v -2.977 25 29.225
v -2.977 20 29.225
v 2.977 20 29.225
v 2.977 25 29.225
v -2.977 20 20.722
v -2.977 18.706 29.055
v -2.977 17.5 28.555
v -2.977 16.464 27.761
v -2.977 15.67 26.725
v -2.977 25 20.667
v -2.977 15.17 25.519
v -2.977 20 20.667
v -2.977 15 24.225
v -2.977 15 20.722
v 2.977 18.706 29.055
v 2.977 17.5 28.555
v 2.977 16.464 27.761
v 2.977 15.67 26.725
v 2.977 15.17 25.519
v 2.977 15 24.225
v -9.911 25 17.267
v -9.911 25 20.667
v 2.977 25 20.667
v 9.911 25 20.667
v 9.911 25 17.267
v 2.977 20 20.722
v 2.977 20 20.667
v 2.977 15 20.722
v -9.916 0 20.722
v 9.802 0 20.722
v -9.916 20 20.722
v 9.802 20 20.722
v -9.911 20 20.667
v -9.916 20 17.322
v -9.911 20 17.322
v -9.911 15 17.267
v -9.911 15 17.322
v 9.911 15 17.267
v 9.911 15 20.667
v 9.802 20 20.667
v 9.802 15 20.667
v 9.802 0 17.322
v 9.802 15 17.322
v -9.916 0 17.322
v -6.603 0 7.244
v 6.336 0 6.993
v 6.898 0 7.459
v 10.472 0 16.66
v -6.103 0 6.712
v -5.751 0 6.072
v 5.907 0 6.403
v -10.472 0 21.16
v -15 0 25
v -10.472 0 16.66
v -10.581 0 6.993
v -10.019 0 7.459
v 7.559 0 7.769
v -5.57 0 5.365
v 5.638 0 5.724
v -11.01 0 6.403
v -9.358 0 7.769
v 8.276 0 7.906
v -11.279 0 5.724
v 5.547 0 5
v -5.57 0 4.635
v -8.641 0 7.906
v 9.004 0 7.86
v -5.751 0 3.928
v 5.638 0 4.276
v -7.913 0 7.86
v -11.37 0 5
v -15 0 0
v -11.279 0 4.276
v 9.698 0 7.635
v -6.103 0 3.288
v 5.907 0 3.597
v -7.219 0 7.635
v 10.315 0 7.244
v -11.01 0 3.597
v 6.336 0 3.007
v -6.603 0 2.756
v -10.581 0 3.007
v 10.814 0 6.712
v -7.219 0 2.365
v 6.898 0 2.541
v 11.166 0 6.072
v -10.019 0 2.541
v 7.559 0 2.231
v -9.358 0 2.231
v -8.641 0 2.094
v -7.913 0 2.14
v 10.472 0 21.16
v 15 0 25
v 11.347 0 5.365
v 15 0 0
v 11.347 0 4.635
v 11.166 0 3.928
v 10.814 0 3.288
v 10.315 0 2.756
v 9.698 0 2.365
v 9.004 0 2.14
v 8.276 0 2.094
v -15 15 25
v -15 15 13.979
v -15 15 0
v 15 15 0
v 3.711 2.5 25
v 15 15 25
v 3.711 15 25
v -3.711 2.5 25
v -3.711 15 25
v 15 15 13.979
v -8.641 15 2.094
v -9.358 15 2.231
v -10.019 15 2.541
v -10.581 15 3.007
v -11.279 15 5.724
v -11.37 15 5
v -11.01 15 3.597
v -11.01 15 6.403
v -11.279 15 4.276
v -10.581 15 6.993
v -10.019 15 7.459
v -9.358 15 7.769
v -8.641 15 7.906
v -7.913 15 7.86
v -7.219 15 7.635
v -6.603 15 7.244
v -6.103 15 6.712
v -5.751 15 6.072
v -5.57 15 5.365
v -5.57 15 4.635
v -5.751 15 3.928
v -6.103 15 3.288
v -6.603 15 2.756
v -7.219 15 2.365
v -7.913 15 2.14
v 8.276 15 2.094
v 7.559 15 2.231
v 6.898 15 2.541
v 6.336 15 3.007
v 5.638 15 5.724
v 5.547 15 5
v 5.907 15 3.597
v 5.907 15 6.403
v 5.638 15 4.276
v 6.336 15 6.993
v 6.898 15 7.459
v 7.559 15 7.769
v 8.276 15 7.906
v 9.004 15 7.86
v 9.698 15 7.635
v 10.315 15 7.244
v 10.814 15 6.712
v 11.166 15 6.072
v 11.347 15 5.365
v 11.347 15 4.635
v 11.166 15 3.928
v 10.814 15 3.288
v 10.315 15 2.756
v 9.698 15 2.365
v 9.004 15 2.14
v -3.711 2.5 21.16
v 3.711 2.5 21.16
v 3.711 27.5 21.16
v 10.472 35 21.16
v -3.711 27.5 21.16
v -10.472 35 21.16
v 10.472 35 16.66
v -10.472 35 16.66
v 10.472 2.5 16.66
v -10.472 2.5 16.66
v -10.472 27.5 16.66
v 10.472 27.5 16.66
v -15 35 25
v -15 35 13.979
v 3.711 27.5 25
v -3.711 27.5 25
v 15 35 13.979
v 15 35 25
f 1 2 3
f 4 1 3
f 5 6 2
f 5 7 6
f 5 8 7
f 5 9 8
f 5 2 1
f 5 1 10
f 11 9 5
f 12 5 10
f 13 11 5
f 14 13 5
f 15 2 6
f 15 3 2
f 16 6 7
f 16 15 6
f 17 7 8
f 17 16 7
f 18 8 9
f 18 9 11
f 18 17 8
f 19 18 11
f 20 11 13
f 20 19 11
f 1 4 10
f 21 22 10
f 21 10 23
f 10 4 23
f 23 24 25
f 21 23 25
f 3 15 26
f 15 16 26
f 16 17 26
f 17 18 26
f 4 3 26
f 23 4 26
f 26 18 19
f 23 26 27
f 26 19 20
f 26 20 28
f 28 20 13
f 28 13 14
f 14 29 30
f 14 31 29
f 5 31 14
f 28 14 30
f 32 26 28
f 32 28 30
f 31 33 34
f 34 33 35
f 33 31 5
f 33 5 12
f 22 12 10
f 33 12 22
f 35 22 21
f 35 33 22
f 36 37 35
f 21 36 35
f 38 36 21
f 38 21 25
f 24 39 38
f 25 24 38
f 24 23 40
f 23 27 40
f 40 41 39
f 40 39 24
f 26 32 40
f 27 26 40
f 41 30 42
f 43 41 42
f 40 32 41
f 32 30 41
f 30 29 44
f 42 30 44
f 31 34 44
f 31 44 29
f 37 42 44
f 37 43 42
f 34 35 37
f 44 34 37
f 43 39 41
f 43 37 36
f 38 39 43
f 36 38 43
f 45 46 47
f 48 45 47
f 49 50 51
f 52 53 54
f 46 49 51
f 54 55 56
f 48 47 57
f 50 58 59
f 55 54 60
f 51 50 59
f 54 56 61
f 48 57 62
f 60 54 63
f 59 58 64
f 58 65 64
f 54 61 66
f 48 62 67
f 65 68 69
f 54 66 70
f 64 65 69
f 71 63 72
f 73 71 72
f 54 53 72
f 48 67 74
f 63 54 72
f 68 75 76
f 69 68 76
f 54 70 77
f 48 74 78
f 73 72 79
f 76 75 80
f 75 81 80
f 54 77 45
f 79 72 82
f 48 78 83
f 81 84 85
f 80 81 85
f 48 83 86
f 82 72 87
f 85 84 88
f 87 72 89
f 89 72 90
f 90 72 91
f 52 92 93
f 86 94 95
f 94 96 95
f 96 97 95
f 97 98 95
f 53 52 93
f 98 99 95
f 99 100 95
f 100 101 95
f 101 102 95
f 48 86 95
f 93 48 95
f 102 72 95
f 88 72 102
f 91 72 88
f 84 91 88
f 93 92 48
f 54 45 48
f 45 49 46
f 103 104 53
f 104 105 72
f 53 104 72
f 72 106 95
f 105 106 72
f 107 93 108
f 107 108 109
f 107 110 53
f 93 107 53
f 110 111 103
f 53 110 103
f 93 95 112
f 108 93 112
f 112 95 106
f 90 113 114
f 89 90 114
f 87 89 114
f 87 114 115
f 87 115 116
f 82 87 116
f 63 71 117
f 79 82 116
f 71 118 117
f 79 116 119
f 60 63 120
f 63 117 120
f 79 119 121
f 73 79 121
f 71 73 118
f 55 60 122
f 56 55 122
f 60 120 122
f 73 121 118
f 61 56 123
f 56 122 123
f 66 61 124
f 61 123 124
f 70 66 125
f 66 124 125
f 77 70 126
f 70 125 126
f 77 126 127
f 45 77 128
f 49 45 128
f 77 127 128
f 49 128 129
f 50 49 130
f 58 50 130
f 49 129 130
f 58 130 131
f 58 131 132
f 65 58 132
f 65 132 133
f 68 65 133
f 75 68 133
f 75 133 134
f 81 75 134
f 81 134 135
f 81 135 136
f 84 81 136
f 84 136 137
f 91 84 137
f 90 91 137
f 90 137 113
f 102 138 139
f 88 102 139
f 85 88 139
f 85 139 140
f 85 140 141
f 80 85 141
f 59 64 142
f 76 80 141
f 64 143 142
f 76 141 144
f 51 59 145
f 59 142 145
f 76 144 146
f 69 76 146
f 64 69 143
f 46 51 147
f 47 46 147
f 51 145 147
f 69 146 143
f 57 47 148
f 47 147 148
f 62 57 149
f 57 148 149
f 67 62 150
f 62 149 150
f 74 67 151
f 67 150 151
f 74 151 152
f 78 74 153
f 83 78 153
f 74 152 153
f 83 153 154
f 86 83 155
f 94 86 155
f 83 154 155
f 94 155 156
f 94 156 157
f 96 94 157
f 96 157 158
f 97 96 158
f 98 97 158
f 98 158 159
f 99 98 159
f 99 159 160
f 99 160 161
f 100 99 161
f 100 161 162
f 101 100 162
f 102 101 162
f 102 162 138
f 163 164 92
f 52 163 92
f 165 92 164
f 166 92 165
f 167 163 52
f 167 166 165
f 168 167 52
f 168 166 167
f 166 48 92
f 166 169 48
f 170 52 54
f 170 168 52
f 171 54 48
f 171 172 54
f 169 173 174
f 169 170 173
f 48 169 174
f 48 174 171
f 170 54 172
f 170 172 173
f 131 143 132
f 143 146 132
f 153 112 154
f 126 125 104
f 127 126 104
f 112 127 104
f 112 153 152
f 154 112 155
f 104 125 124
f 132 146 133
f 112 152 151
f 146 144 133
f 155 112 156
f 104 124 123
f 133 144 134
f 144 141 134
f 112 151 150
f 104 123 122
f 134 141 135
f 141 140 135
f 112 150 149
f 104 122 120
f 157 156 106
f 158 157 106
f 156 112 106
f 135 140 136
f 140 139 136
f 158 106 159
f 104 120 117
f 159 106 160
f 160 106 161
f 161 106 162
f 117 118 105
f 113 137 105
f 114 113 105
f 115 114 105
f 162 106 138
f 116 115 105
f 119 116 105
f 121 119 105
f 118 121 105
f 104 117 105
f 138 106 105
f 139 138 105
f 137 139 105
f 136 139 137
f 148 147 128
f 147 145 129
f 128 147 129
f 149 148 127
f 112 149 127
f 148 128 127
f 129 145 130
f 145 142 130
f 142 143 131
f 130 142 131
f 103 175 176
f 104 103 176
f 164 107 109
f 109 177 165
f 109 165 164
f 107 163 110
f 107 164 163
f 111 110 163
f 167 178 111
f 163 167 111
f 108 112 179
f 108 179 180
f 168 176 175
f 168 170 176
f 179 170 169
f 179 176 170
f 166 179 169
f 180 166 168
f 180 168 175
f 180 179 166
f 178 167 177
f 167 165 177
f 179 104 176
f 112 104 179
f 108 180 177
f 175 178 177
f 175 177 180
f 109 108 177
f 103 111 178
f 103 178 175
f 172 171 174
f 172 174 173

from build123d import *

# Parameters (mm, degrees)
SKETCH_W        = 30
SKETCH_H        = 15
PAD_DEPTH       = 25
SKETCH001_W     = 30
SKETCH001_H     = 11.021101
PAD001_DEPTH    = 20
POCKET_DEPTH    = 12.5
SKETCH005_W     = 20.9433
SKETCH005_H     = 4.5
POCKET001_DEPTH = 35.001
SKETCH006_R     = 2.911807
POCKET002_DEPTH = 15.001
SKETCH004_W     = 19.717758
SKETCH004_H     = 3.4
PAD003_DEPTH    = 20
PAD002_DEPTH    = 10
FILLET_R        = 5


with BuildPart() as pocket002:
    # Sketch → Pad (new body)
    with BuildSketch(Plane.XY):
        with Locations((0, 7.5)):
            Rectangle(SKETCH_W, SKETCH_H)
    extrude(amount=PAD_DEPTH)

    # Sketch001 → Pad001 (new body)
    with BuildSketch(Plane(origin=(0, 15, 0), x_dir=(-1, 0, 0), z_dir=(0, 1, 0))):
        with Locations((0, 19.489453)):
            Rectangle(SKETCH001_W, SKETCH001_H)
    extrude(amount=PAD001_DEPTH)

    # Sketch002 → Pocket (cut, symmetric)
    with BuildSketch(Plane(origin=(0, 15, 0), x_dir=(-1, 0, 0), z_dir=(0, 1, 0))):
        Polygon((-3.711225, 27.762222), (-3.711225, 21.159639), (-10.471647, 21.159639), (-10.471647, 16.659639), (10.471647, 16.659639), (10.471647, 21.159639), (3.711225, 21.159639), (3.711225, 27.762222), align=None)
    extrude(amount=POCKET_DEPTH, both=True, mode=Mode.SUBTRACT)

    # Sketch005 → Pocket001 (cut, through all)
    with BuildSketch(Plane(origin=(0, 35, 0), x_dir=(-1, 0, 0), z_dir=(0, 1, 0))):
        with Locations((0, 18.909641)):
            Rectangle(SKETCH005_W, SKETCH005_H)
    extrude(amount=-POCKET001_DEPTH, mode=Mode.SUBTRACT)

    # Sketch006 → Pocket002 (cut, through all)
    with BuildSketch(Plane(origin=(0, 15, 0), x_dir=(-1, 0, 0), z_dir=(0, 1, 0))):
        with Locations((8.458632, 5)):
            Circle(SKETCH006_R)
        with Locations((-8.458632, 5)):
            Circle(SKETCH006_R)
    extrude(amount=-POCKET002_DEPTH, mode=Mode.SUBTRACT)


with BuildPart() as pad003:
    # Sketch004 → Pad003 (new body)
    with BuildSketch(Plane.XZ.offset(-20)):
        with Locations((-0.057347, 19.021947)):
            Rectangle(SKETCH004_W, SKETCH004_H)
    extrude(amount=PAD003_DEPTH)


with BuildPart() as fillet_body:
    # Sketch003 → Pad002 (new body)
    with BuildSketch(Plane.XZ.offset(-15)):
        Polygon((-2.977273, 29.225012), (-2.977273, 20.667399), (-9.911308, 20.667399), (-9.911308, 17.267399), (9.911308, 17.267399), (9.911308, 20.667399), (2.977273, 20.667399), (2.977273, 29.225012), align=None)
    extrude(amount=-PAD002_DEPTH)

    # Fusion: union Pad003
    add(pad003.part)

    # Fusion001: union Pocket002
    add(pocket002.part)

    # Fillet
    fillet_edges = [fillet_body.edges().sort_by_distance(p)[0] for p in [
        (0, 15, 29.225012),
    ]]
    fillet(fillet_edges, radius=FILLET_R)


solid = fillet_body.part
